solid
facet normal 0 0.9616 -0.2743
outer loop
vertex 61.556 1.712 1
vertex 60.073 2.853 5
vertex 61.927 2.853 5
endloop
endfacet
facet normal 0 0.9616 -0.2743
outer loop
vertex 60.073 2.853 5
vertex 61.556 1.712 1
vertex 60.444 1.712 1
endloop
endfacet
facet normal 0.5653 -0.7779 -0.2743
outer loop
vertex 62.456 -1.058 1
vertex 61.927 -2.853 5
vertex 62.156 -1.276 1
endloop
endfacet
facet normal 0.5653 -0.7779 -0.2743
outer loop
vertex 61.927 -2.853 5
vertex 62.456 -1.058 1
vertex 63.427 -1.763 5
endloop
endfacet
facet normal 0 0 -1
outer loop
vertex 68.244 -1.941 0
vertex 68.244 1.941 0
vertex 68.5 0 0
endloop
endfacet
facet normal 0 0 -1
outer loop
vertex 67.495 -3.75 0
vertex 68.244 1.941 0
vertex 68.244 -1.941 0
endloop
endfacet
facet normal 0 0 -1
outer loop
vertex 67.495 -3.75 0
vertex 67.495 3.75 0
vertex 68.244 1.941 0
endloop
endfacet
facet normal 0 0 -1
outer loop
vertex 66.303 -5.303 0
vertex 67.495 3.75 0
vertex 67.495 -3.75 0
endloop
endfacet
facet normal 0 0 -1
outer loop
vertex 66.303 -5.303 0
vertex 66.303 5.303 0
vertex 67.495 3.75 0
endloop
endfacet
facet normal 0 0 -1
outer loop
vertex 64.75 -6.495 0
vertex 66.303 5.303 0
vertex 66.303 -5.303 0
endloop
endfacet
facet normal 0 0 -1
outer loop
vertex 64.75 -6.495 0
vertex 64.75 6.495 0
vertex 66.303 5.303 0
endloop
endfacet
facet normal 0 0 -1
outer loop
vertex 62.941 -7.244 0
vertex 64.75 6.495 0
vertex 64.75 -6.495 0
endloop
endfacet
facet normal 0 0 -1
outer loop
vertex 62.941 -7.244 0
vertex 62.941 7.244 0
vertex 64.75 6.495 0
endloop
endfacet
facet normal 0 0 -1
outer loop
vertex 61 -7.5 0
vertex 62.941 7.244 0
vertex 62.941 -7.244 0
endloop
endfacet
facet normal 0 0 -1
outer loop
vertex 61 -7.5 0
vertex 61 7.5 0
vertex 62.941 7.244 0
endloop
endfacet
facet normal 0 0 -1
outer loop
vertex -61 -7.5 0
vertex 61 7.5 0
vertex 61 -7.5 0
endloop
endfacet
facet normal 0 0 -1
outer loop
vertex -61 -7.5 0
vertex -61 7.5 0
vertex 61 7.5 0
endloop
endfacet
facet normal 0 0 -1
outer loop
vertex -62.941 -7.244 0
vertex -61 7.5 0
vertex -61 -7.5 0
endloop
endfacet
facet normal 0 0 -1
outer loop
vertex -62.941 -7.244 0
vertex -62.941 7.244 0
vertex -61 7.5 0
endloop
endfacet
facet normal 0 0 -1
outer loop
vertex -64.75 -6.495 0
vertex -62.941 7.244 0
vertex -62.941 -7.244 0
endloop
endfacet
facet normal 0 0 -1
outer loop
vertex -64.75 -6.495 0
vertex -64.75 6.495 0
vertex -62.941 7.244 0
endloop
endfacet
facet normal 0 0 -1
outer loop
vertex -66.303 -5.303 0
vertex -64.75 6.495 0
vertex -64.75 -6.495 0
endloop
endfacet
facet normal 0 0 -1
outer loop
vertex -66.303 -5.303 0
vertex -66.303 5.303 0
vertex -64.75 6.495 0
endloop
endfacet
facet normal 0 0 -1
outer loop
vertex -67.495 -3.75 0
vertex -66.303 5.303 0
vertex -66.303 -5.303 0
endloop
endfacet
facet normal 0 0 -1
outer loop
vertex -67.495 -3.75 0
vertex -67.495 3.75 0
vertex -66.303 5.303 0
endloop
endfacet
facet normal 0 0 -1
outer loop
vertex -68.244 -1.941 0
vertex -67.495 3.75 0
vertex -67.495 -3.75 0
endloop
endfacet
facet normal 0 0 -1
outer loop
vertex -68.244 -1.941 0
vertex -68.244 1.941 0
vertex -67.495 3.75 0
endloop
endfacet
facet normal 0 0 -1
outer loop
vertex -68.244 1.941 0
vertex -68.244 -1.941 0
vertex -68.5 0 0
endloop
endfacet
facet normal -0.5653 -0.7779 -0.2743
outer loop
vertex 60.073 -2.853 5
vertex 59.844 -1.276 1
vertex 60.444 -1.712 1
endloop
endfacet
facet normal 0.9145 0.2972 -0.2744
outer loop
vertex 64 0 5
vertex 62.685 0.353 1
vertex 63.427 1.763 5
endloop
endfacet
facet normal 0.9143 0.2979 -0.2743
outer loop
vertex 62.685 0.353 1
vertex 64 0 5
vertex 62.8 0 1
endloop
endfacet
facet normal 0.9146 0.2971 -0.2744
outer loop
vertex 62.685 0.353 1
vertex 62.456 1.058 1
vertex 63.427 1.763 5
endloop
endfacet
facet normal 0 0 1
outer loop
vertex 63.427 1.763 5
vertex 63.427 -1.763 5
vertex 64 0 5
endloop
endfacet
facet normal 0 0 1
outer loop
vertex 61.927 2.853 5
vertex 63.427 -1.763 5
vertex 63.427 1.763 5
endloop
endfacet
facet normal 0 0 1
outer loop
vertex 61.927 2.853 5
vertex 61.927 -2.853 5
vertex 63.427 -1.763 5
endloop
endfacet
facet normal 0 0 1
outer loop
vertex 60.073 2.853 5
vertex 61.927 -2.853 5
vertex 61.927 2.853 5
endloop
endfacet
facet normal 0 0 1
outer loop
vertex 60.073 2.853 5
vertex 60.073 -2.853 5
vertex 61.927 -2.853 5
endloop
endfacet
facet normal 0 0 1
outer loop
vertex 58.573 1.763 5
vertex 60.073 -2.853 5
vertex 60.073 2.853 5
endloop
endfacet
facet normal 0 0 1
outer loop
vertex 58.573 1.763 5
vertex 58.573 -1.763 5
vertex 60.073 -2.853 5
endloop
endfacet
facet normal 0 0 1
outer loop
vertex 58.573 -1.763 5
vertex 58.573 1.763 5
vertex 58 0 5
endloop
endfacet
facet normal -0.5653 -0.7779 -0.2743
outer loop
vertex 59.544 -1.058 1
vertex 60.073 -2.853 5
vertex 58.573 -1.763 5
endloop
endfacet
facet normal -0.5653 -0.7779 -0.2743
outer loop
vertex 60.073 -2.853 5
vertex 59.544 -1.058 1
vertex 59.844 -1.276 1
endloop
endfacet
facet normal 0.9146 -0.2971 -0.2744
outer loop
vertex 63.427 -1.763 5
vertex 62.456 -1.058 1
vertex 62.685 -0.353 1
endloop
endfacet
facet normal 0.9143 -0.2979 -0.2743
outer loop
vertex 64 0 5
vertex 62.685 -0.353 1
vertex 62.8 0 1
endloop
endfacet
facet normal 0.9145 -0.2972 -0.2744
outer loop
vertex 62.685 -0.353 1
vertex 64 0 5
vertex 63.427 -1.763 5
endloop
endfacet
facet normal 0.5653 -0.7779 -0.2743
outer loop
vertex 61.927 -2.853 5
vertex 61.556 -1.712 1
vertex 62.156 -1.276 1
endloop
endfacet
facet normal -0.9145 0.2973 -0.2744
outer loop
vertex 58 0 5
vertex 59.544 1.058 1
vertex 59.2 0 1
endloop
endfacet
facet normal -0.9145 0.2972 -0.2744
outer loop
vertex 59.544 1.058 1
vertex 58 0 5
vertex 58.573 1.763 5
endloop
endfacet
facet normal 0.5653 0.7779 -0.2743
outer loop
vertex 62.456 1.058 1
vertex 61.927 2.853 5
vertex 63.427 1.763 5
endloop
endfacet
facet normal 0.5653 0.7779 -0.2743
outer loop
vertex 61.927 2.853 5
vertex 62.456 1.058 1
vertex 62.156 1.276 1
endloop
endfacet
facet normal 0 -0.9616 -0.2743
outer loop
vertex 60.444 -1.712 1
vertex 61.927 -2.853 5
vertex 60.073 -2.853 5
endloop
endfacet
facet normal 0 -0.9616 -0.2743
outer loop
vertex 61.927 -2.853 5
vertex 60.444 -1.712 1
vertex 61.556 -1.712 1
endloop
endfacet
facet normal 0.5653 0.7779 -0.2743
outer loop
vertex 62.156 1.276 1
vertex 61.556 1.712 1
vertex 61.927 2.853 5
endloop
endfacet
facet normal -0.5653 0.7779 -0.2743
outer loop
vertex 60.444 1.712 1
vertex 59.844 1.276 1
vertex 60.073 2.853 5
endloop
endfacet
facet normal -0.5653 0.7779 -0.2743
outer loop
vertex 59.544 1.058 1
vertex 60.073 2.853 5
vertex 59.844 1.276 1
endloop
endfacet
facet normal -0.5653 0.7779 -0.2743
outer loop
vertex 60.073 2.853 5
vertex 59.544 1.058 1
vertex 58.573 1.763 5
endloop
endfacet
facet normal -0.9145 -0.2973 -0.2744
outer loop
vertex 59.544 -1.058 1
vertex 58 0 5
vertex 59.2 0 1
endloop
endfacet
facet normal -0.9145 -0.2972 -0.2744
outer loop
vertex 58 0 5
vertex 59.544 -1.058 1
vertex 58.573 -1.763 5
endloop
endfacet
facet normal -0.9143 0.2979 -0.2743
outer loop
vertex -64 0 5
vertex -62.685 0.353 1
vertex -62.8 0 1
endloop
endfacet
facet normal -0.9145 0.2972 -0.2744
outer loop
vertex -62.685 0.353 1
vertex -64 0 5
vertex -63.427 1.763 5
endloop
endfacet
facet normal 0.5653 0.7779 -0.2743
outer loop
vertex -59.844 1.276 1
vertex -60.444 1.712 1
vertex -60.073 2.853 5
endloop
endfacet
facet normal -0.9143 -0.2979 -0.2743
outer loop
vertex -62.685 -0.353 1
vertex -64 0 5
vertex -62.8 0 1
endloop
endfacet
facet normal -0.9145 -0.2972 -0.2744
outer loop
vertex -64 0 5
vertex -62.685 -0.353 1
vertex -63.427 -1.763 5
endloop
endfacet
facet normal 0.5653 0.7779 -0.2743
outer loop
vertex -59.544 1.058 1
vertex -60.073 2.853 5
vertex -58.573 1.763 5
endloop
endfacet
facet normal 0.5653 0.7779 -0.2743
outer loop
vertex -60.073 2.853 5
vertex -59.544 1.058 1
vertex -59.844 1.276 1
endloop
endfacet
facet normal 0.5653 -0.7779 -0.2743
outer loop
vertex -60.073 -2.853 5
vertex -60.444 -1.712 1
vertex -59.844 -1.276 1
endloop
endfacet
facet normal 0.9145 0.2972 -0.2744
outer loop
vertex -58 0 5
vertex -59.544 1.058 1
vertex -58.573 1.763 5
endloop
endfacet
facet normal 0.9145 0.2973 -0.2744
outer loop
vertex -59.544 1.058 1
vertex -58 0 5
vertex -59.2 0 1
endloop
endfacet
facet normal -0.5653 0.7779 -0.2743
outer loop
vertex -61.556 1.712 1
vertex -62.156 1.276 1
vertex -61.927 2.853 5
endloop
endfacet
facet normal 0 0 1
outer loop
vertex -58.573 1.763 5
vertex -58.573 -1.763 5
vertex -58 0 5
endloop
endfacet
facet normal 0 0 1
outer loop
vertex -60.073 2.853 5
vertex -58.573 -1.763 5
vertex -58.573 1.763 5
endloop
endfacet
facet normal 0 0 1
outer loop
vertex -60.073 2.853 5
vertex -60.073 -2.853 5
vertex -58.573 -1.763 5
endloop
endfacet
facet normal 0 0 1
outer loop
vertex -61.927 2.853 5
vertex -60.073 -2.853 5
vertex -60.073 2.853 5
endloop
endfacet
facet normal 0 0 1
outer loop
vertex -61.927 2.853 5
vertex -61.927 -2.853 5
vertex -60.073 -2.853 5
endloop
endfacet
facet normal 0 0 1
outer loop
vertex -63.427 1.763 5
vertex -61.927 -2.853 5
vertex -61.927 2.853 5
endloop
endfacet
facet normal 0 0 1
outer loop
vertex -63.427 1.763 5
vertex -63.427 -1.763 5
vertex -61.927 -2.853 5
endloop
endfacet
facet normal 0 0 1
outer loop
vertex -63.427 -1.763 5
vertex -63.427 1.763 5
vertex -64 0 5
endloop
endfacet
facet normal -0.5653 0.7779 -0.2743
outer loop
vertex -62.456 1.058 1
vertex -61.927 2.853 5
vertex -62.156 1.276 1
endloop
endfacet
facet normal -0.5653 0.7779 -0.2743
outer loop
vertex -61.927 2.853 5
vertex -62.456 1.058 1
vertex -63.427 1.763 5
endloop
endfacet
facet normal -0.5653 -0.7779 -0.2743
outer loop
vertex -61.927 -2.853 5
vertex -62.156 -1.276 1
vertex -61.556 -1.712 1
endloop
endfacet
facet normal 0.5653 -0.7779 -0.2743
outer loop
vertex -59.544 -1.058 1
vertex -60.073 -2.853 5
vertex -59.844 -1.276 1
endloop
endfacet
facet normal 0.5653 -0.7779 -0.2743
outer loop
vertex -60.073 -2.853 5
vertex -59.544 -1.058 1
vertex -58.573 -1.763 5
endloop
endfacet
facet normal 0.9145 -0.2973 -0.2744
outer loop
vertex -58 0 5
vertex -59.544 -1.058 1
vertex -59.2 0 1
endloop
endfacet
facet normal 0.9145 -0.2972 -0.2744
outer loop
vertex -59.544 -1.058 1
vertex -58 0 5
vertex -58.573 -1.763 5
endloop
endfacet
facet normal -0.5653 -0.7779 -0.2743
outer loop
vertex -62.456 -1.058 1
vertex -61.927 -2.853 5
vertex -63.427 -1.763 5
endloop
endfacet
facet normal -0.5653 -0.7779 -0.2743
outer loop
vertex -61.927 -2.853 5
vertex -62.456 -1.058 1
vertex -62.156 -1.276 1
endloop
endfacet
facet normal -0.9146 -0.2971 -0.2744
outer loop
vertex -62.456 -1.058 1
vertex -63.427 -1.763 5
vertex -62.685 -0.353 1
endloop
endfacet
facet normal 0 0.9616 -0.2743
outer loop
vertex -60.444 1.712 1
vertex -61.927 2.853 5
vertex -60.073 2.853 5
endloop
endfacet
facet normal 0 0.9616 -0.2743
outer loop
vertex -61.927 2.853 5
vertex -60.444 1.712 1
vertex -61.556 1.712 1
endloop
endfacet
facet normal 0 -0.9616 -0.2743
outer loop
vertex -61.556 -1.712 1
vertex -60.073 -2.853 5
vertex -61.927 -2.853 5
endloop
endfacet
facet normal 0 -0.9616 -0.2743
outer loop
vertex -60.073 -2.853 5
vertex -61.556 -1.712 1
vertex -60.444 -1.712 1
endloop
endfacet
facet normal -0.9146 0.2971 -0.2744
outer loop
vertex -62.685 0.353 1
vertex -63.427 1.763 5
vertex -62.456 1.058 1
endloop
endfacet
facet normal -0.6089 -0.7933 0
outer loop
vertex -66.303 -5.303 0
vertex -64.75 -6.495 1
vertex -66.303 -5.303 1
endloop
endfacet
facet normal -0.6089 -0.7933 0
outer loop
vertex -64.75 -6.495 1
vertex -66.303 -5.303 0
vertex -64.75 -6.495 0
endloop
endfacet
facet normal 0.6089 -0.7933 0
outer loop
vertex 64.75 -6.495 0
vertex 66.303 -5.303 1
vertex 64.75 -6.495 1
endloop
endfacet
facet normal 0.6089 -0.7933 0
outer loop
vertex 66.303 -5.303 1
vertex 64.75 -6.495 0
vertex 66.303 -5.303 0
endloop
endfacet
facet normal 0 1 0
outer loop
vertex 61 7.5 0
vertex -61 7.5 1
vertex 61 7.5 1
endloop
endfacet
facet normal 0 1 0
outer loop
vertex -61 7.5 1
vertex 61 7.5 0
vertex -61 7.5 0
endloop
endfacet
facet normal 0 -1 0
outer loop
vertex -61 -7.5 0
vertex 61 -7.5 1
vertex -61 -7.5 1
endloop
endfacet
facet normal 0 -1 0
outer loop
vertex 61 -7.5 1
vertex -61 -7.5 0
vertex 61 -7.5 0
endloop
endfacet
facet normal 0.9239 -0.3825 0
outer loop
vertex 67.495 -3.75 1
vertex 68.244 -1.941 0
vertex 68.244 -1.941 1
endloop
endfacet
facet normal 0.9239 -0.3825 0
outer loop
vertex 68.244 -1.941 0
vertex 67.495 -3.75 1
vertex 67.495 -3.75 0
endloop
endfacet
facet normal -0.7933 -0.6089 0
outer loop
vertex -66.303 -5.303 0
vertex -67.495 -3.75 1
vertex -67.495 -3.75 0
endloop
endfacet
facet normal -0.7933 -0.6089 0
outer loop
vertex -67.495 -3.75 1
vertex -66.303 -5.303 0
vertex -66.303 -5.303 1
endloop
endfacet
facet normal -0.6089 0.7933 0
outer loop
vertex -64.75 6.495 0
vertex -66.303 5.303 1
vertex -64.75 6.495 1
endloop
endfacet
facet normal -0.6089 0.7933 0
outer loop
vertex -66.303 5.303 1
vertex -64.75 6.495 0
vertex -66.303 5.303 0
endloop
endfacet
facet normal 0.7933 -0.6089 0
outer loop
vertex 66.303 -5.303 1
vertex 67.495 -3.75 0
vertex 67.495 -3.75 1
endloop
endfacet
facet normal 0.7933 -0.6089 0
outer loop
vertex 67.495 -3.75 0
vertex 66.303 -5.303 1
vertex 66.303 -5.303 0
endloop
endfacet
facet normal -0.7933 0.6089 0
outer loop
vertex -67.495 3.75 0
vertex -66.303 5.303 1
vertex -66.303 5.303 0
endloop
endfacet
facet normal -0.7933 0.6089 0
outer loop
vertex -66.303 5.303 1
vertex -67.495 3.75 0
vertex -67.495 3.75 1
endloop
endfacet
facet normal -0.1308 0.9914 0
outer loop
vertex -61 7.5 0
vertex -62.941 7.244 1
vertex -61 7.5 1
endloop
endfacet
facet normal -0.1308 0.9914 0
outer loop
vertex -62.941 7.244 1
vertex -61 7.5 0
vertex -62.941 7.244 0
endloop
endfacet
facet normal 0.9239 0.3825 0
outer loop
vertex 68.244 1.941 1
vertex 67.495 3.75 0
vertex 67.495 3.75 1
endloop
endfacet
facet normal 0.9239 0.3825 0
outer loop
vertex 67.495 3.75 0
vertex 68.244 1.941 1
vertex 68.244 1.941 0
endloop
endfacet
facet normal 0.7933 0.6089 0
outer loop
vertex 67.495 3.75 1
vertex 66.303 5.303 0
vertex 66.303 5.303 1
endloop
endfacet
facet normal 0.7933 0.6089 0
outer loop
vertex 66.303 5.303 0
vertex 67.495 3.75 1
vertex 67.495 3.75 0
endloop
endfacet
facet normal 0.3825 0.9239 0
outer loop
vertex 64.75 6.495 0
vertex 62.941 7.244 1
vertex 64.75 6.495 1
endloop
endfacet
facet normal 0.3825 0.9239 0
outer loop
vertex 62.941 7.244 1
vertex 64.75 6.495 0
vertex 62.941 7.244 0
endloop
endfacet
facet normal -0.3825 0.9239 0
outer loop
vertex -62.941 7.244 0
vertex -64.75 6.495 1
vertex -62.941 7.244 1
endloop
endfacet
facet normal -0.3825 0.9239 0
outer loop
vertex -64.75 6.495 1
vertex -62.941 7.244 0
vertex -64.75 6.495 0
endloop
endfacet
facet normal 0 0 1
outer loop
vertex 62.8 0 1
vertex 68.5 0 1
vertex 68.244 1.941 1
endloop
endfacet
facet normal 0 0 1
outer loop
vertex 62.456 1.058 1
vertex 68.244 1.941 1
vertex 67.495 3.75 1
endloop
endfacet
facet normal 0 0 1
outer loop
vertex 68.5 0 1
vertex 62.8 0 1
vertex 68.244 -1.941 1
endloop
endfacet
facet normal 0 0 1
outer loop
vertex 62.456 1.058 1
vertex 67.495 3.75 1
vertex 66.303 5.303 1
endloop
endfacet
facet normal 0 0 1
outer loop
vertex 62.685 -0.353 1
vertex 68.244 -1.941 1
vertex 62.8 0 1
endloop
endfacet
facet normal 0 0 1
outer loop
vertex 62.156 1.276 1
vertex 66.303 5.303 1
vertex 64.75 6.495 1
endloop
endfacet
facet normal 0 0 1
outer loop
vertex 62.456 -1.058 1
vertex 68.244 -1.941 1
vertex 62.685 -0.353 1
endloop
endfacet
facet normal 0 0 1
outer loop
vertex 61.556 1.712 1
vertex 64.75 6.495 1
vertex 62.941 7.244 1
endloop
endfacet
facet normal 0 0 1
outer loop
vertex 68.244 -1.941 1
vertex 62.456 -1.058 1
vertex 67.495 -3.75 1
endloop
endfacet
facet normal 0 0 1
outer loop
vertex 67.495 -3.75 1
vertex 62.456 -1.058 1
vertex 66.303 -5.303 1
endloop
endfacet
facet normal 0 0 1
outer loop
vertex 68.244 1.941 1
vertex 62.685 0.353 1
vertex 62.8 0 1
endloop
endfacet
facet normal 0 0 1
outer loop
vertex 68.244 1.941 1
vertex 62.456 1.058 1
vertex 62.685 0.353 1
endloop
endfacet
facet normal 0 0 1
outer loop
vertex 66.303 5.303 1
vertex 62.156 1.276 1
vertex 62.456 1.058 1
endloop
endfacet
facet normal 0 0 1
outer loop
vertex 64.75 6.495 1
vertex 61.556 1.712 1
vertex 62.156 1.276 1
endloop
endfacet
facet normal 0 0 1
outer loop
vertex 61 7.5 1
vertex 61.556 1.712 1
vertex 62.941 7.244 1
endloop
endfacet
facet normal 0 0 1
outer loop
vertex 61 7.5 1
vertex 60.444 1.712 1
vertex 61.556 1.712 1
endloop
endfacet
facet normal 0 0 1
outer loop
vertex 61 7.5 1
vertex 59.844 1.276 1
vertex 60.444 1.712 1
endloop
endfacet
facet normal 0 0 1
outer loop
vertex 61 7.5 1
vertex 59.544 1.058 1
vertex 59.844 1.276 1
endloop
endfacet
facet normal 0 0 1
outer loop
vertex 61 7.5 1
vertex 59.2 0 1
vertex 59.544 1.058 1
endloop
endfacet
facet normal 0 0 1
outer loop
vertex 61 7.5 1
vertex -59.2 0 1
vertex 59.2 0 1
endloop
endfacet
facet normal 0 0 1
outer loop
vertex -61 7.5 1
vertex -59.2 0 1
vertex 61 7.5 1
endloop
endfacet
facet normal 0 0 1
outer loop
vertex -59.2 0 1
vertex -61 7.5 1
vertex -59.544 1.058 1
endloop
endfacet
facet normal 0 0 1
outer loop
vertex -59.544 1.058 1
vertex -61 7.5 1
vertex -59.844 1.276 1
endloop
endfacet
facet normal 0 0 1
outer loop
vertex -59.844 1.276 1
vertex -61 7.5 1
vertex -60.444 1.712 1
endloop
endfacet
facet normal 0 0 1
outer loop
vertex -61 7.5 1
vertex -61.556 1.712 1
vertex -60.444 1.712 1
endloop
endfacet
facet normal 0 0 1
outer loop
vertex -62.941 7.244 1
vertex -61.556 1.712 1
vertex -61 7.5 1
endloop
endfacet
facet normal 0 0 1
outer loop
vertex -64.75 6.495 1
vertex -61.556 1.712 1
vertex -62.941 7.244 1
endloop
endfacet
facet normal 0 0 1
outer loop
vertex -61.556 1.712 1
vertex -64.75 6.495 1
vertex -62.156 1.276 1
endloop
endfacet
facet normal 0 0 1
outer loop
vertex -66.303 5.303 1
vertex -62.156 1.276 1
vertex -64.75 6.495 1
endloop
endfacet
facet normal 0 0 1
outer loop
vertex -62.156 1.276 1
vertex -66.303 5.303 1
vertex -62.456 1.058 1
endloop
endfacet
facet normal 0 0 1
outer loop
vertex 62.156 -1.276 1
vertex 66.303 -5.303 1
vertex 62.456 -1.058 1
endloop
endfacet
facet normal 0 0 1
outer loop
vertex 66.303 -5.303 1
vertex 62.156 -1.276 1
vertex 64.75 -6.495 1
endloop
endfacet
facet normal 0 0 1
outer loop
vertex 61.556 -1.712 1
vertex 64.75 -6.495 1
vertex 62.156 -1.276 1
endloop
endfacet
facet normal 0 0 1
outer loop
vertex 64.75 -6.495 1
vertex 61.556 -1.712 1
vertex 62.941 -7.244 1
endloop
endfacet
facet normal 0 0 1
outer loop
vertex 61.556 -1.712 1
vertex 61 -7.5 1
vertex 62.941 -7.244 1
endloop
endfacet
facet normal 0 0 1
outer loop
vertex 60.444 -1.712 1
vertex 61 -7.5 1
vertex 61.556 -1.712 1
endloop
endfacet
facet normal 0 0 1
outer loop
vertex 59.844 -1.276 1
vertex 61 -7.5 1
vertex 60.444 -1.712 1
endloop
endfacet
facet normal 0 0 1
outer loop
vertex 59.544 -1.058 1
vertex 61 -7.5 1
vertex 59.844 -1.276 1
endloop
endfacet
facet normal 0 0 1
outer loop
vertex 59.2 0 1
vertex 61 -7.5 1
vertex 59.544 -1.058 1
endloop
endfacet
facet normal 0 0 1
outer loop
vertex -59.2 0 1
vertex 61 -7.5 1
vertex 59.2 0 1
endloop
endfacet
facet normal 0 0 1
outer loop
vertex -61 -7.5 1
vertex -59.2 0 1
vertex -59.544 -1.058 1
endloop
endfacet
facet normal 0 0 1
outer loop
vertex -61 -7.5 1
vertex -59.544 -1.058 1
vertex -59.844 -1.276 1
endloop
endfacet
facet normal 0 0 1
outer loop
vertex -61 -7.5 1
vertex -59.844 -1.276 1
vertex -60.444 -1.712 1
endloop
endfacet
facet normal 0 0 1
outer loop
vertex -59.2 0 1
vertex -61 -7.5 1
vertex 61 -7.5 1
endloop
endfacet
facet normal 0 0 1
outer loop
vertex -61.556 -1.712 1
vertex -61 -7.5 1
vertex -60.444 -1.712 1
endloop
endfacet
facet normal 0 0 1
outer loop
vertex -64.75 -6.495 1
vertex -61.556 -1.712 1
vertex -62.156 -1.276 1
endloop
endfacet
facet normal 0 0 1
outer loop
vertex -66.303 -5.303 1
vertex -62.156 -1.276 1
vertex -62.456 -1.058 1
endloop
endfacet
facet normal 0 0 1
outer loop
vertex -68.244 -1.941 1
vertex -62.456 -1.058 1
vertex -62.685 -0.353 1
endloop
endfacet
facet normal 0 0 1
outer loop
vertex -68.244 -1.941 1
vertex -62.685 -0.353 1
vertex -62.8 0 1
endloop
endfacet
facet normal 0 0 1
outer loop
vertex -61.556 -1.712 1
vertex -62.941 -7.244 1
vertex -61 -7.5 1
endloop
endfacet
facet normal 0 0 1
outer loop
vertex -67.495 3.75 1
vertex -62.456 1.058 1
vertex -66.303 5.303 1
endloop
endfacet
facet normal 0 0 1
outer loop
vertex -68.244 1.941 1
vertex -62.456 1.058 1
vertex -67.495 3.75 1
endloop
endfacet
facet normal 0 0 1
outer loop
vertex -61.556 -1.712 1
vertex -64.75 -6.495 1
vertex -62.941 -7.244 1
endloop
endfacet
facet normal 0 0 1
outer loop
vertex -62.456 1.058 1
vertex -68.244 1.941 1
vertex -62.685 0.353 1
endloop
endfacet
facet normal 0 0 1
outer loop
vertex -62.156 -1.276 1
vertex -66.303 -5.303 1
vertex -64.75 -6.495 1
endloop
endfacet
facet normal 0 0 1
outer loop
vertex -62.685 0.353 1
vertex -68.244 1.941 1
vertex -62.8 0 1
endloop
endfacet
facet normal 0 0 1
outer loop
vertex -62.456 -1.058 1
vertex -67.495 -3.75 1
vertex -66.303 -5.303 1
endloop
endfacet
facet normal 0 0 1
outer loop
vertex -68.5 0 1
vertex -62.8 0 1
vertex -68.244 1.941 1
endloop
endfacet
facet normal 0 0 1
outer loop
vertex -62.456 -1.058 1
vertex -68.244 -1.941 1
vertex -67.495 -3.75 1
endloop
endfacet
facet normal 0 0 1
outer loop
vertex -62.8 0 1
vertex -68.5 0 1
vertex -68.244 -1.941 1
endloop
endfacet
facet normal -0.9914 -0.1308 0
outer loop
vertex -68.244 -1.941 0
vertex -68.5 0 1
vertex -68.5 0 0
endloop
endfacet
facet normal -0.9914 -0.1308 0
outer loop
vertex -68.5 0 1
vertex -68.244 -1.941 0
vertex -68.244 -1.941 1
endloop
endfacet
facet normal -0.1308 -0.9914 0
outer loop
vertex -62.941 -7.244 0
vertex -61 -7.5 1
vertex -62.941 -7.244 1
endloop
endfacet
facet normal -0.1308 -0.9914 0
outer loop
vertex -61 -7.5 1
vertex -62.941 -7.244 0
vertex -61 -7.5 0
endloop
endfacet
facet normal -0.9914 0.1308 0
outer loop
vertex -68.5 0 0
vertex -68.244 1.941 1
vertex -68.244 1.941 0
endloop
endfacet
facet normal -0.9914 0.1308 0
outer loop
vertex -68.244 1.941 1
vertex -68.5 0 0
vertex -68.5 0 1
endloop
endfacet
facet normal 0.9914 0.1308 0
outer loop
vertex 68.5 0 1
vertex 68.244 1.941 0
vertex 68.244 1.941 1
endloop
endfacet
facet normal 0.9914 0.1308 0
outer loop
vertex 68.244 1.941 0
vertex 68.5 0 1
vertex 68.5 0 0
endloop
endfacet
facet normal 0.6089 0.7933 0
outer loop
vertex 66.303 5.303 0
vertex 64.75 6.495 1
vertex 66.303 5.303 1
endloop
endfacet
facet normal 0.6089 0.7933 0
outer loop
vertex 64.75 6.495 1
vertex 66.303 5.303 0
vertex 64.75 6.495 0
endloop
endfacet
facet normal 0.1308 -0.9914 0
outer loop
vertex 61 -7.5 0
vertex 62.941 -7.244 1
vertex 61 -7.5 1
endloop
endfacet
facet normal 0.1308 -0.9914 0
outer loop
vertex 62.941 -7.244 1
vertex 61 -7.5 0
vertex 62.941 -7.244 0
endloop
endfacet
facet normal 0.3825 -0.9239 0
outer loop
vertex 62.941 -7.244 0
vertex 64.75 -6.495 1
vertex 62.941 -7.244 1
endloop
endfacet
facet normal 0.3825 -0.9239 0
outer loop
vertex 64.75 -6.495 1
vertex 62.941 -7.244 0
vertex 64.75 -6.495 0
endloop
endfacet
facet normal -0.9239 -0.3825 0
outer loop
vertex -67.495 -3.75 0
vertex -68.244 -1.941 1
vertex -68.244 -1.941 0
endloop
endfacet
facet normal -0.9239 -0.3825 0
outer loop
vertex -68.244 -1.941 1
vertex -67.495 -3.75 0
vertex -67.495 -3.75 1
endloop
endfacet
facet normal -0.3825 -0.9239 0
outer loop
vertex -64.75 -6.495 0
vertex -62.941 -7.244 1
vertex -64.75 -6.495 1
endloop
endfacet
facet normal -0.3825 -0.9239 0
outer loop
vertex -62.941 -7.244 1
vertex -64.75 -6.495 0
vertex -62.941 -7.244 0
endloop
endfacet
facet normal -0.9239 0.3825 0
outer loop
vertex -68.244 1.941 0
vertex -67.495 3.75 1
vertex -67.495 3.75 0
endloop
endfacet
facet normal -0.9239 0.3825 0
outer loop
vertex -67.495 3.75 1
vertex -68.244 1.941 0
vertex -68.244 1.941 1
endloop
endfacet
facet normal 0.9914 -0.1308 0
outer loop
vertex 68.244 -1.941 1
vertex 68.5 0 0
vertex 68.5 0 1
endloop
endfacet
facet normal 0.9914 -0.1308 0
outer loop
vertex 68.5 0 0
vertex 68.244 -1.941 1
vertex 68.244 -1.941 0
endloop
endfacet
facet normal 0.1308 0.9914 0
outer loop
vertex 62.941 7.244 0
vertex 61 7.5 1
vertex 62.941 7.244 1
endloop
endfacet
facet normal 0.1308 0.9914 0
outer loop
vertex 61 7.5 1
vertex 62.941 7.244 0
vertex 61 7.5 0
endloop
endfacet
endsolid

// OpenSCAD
translate([122/2,0,0])
cylinder(d1=3,d2=6,h=5);
translate([-122/2,0,0])
cylinder(d1=3,d2=6,h=5);

hull(){
translate([122/2,0,0])
cylinder(d=15,h=1);
translate([-122/2,0,0])
cylinder(d=15,h=1);
}
